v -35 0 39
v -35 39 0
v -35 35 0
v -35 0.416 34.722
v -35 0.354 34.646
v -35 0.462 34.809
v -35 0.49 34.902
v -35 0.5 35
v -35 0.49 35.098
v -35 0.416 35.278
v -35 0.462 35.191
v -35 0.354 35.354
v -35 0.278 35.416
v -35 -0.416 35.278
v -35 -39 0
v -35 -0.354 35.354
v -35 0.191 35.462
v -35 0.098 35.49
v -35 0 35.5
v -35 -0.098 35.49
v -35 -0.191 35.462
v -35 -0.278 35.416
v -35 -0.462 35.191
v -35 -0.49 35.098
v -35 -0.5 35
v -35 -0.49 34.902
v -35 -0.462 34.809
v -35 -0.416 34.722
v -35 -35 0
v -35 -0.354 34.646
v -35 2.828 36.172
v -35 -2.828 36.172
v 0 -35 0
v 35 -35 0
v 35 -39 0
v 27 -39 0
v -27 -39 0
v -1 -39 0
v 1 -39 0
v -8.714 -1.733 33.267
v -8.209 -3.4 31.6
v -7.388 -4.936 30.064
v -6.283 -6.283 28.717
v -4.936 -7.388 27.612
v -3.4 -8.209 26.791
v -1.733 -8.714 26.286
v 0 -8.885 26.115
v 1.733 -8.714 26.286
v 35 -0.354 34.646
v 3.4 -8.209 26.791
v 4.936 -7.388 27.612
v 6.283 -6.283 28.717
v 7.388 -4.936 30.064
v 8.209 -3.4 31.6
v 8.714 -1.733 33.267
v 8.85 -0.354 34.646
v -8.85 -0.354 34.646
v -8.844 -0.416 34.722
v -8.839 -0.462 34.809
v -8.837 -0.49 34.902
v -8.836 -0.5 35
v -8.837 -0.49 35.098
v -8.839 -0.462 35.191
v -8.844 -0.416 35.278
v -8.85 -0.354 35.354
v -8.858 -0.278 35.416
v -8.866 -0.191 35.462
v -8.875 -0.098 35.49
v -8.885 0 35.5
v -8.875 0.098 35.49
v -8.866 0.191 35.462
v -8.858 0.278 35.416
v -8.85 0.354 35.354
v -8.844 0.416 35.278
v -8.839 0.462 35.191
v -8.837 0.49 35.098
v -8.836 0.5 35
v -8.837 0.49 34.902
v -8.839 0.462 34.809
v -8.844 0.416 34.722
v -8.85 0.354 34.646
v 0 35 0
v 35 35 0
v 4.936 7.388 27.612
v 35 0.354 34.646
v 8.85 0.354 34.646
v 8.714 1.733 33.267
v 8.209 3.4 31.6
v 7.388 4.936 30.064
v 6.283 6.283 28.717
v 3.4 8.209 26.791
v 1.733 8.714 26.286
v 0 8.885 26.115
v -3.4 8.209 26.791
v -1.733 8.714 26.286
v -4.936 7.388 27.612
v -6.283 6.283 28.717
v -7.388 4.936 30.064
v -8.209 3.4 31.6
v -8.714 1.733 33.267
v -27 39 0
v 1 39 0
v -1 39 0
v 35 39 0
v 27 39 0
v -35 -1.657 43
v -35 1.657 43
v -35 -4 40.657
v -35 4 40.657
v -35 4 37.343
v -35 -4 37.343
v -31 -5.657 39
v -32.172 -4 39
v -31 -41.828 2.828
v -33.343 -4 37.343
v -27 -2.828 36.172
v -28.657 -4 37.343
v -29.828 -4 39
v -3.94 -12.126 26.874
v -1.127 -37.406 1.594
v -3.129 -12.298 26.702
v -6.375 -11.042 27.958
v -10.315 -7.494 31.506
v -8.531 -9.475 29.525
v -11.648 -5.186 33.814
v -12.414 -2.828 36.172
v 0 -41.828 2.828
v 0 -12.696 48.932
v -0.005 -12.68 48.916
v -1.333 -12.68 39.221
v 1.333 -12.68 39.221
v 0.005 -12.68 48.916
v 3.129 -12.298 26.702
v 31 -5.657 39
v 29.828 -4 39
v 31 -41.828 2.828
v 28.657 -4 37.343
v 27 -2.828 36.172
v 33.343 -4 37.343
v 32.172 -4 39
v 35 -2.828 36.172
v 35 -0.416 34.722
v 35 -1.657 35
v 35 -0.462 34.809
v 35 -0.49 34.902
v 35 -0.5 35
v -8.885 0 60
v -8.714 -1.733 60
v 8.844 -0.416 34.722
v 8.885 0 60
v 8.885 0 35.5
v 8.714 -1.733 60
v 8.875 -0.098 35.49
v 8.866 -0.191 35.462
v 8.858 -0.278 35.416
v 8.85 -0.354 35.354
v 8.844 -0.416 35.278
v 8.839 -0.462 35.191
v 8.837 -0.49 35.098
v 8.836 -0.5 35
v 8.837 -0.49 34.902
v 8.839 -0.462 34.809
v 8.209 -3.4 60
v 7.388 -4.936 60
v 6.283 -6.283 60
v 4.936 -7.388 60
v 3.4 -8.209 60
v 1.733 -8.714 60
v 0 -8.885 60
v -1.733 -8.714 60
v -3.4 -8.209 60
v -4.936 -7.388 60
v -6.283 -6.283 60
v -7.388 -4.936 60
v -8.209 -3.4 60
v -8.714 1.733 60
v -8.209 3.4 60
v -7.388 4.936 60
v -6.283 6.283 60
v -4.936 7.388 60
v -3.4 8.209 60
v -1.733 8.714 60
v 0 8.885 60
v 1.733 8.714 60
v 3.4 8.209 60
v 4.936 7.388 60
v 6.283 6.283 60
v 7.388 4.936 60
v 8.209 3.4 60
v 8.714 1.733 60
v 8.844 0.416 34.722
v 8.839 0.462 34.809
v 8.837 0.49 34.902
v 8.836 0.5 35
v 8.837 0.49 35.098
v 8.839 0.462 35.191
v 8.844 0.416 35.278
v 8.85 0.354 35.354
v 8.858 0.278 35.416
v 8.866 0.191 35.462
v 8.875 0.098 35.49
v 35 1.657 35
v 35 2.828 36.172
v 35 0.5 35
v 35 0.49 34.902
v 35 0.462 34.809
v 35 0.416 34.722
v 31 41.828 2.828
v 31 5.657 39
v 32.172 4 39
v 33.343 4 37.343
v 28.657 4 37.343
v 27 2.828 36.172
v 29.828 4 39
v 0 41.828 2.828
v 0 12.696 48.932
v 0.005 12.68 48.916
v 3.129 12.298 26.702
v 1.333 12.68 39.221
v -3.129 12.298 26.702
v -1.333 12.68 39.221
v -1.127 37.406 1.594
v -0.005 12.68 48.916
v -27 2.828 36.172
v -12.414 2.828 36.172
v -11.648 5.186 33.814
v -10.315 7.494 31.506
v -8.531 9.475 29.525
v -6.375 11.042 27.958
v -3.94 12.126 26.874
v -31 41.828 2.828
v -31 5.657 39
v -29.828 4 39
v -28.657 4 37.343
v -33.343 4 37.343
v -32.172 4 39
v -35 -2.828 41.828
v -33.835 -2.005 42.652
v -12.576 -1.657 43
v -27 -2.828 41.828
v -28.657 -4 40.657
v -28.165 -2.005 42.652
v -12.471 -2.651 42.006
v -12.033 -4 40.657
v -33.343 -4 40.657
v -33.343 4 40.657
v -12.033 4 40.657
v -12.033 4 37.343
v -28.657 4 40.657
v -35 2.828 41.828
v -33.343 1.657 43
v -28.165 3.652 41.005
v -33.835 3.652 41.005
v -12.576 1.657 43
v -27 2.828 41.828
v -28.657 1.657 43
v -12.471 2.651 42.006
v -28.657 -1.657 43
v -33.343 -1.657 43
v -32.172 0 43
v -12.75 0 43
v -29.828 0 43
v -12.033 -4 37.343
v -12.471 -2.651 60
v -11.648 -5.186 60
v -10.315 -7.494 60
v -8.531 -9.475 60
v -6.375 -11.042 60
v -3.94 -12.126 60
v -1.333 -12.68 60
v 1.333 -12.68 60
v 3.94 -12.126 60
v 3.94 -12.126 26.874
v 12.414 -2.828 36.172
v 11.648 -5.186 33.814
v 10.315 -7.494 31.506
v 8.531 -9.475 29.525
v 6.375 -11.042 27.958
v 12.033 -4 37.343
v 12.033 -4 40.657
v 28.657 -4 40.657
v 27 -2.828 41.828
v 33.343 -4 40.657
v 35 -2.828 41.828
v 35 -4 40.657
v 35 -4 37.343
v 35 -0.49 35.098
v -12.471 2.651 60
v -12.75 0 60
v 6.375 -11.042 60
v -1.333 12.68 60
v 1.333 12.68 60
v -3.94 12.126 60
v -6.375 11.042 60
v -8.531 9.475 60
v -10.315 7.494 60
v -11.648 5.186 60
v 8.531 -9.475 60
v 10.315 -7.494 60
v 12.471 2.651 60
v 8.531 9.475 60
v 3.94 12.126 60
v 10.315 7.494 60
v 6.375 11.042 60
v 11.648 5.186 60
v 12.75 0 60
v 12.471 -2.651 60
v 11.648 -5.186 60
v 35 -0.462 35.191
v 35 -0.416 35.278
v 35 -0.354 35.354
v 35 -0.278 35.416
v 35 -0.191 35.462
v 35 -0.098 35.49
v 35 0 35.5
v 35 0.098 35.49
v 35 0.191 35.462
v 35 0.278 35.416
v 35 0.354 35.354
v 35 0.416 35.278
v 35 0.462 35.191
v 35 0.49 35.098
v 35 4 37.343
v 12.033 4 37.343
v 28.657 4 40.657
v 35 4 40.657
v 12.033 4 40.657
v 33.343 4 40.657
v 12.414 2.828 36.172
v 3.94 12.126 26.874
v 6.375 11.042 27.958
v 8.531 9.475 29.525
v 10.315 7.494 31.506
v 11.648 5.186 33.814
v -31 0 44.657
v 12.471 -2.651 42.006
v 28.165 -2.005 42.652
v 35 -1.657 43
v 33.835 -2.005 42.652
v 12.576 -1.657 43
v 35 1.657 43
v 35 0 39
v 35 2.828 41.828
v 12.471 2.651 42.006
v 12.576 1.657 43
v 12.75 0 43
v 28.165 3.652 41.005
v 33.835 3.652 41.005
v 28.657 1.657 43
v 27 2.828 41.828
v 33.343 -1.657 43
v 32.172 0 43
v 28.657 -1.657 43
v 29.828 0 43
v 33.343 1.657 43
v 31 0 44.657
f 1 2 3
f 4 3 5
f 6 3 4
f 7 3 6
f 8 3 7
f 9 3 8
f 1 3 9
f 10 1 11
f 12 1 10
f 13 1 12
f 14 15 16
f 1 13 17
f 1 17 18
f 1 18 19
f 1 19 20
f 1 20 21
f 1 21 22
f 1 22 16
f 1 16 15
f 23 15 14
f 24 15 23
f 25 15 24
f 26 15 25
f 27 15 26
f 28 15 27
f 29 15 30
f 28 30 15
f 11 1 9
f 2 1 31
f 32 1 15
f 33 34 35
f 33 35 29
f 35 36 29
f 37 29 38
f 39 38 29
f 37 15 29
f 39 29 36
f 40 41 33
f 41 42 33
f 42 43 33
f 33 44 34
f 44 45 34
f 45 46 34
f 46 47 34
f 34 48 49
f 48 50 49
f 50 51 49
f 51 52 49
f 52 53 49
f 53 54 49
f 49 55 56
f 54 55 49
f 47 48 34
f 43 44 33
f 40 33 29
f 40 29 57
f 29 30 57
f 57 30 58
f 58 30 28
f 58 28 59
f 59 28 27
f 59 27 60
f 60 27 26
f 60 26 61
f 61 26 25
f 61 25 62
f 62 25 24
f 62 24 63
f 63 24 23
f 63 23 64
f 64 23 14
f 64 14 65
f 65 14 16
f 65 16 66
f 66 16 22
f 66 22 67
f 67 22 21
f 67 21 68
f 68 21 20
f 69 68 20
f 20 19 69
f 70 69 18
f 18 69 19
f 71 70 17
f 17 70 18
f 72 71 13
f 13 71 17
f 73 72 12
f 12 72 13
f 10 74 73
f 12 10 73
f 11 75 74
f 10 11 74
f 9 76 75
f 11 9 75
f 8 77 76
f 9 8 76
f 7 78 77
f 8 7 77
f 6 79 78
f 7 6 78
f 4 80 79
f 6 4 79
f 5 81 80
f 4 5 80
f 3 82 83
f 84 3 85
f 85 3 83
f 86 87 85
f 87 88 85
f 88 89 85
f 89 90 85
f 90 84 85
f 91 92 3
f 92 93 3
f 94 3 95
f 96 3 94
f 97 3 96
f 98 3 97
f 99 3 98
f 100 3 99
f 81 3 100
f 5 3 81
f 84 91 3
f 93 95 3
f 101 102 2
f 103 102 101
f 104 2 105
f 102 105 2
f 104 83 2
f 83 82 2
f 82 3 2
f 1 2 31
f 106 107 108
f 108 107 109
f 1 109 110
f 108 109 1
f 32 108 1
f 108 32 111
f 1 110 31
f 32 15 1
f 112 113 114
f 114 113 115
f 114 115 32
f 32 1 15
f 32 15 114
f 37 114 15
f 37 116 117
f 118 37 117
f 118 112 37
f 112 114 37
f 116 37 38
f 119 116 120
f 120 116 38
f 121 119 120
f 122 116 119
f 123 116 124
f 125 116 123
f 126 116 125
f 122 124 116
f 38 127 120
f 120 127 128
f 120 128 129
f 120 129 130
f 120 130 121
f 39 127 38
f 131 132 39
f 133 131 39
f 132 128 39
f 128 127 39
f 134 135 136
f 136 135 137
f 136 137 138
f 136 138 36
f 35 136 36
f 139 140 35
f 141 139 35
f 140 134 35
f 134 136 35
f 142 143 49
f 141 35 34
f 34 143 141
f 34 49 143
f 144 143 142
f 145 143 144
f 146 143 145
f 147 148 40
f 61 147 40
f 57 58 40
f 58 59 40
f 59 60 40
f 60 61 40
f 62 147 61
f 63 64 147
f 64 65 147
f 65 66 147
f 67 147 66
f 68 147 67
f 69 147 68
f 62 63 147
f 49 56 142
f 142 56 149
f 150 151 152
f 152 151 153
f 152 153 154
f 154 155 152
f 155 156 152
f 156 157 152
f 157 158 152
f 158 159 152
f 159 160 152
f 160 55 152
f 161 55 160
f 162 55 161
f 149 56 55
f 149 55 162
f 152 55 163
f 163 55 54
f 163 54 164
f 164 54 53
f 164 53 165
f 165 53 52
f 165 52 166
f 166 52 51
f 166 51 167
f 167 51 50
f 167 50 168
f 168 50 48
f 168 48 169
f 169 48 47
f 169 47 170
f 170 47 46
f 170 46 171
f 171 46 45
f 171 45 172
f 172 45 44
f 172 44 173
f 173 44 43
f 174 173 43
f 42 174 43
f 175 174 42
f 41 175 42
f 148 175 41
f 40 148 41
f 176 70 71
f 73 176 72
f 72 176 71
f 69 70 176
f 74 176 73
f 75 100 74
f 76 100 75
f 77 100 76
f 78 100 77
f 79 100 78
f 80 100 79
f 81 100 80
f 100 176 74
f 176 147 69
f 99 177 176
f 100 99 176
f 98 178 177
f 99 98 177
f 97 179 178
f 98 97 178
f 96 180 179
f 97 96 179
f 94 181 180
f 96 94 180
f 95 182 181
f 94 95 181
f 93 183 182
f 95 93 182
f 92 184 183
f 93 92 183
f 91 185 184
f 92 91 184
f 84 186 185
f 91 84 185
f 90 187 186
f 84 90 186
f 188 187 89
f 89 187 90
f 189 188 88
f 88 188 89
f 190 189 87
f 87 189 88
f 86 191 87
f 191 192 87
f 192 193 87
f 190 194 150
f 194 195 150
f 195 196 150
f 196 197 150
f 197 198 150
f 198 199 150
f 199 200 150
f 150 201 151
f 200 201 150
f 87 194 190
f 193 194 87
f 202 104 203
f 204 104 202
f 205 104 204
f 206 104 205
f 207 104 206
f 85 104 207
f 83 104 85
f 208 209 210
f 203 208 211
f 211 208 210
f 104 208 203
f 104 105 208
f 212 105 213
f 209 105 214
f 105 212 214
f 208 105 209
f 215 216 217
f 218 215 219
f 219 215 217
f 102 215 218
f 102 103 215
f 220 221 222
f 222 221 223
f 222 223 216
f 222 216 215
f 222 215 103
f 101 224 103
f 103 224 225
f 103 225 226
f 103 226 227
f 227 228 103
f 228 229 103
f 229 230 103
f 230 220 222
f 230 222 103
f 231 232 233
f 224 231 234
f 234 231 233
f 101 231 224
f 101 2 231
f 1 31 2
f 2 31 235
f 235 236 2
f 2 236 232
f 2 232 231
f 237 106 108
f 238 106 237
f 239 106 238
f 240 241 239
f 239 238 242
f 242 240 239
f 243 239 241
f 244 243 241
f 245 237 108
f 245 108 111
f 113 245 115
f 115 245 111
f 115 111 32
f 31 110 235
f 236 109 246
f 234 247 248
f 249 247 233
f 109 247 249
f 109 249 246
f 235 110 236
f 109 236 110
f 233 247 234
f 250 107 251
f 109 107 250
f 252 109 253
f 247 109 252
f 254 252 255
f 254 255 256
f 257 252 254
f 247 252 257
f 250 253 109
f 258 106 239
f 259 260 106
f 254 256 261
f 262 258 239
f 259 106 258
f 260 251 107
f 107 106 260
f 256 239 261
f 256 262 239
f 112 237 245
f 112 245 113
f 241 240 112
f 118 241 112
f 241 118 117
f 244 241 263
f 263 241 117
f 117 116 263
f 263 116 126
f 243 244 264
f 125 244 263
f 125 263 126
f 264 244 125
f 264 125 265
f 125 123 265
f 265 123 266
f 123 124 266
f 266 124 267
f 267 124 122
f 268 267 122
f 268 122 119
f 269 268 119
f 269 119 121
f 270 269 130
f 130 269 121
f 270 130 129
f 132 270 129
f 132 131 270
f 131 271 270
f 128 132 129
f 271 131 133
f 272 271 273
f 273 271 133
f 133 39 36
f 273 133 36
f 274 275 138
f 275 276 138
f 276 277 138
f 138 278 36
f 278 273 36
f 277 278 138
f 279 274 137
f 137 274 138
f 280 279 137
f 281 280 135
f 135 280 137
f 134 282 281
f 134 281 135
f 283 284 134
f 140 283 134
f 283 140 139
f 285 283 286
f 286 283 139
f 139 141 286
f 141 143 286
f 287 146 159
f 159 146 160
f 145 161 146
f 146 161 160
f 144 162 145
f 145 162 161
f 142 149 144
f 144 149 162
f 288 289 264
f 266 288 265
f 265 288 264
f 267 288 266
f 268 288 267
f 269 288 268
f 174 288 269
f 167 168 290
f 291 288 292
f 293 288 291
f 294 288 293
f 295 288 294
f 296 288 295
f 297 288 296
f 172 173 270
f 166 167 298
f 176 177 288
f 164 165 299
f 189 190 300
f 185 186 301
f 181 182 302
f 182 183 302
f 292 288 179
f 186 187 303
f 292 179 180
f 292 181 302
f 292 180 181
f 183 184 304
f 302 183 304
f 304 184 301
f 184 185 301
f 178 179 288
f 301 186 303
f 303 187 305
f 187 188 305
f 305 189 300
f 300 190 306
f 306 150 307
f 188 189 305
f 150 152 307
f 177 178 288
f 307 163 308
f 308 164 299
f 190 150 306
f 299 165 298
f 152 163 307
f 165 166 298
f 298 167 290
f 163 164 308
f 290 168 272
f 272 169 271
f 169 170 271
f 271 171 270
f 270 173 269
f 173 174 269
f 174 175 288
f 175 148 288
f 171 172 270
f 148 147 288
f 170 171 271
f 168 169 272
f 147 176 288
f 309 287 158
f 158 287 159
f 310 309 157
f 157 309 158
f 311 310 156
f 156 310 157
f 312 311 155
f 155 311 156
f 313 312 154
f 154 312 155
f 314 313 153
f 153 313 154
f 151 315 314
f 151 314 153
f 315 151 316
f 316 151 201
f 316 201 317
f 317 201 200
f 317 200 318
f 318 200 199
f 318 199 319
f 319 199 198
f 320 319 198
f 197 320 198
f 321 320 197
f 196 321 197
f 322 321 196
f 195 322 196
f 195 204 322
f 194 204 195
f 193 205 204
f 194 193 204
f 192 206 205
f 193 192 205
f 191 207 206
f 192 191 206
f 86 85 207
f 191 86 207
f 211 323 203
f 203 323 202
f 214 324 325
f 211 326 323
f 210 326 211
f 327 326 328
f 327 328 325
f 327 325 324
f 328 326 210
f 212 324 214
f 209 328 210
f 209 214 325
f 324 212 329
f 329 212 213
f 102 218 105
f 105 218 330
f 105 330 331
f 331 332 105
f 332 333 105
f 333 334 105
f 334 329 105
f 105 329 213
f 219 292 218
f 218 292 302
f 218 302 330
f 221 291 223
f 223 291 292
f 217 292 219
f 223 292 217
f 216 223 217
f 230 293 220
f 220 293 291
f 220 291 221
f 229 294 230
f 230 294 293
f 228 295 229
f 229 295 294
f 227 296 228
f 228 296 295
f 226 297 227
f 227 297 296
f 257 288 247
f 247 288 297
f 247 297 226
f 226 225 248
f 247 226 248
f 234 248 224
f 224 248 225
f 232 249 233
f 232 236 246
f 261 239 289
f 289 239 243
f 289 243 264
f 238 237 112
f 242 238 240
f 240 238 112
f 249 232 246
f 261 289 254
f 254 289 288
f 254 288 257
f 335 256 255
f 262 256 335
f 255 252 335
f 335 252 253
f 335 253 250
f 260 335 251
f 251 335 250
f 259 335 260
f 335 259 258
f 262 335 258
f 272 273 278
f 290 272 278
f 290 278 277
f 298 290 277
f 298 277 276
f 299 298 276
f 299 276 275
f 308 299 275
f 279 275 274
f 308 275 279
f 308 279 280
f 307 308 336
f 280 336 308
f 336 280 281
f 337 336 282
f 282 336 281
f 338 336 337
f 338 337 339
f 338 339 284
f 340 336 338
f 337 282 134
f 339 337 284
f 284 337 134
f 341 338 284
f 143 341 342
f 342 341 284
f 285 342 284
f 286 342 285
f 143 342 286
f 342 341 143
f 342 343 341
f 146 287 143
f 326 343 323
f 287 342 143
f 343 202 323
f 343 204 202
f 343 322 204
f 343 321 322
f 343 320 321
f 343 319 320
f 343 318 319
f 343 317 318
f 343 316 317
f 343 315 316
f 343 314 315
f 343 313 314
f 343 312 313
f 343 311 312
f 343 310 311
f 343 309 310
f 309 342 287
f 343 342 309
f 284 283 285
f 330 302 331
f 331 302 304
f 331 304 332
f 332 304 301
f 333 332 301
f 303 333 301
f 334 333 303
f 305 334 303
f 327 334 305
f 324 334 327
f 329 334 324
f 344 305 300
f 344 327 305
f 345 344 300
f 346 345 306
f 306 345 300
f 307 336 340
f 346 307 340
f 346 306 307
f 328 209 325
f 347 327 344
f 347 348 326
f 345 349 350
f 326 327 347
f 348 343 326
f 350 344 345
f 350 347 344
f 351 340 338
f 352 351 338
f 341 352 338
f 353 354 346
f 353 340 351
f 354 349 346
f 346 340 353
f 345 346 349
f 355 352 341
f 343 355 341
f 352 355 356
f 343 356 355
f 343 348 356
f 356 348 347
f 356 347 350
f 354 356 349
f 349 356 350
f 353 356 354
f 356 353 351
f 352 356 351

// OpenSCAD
corner_drill(bore = 17.5/2);


module corner_drill(bore = 10){
	width = 70;
	height = 60;
	wall = 4;

	difference(){
		union(){
			rotate([0,90,0]) cylinder(r=width/2+wall, h=width, center=true, $fn=4);

			for(j=[0:1]) mirror([0,j,0]) for(i=[-width/2+wall:(width-wall*2)/1:width/2]) translate([i,width/2+wall,0]) rotate([45,0,0]) cylinder(r1=wall, r2=wall, h=(width+wall*2+wall*sqrt(2))*cos(45), $fn=4);

			//roof gusset
			translate([0,0,width/2+wall]) rotate([0,90,0]) rotate([0,0,22.5]) cylinder(r=wall/cos(180/8), h=width, $fn=8, center=true);

			//center gusset
			for(j=[0:1]) mirror([0,j,0]) translate([0,width/2+wall,0]) rotate([45,0,0]) scale([1,4,1]) cylinder(r1=1, r2=wall, h=53.2, $fn=4);
	
			cylinder(r=bore+wall, h=height);
		}

		rotate([0,90,0]) cylinder(r=width/2, h=width+1, center=true, $fn=4);
		cylinder(r=bore/cos(180/18), h=width+5, $fn=32);

		//ensure a square corner
		translate([0,0,width/2]) rotate([0,90,0]) rotate([0,0,22.5]) cylinder(r=.5, h=width+2, $fn=32, center=true);

		//flatten
		translate([0,0,-100]) cube([200,200,200],center=true);
	}
}
